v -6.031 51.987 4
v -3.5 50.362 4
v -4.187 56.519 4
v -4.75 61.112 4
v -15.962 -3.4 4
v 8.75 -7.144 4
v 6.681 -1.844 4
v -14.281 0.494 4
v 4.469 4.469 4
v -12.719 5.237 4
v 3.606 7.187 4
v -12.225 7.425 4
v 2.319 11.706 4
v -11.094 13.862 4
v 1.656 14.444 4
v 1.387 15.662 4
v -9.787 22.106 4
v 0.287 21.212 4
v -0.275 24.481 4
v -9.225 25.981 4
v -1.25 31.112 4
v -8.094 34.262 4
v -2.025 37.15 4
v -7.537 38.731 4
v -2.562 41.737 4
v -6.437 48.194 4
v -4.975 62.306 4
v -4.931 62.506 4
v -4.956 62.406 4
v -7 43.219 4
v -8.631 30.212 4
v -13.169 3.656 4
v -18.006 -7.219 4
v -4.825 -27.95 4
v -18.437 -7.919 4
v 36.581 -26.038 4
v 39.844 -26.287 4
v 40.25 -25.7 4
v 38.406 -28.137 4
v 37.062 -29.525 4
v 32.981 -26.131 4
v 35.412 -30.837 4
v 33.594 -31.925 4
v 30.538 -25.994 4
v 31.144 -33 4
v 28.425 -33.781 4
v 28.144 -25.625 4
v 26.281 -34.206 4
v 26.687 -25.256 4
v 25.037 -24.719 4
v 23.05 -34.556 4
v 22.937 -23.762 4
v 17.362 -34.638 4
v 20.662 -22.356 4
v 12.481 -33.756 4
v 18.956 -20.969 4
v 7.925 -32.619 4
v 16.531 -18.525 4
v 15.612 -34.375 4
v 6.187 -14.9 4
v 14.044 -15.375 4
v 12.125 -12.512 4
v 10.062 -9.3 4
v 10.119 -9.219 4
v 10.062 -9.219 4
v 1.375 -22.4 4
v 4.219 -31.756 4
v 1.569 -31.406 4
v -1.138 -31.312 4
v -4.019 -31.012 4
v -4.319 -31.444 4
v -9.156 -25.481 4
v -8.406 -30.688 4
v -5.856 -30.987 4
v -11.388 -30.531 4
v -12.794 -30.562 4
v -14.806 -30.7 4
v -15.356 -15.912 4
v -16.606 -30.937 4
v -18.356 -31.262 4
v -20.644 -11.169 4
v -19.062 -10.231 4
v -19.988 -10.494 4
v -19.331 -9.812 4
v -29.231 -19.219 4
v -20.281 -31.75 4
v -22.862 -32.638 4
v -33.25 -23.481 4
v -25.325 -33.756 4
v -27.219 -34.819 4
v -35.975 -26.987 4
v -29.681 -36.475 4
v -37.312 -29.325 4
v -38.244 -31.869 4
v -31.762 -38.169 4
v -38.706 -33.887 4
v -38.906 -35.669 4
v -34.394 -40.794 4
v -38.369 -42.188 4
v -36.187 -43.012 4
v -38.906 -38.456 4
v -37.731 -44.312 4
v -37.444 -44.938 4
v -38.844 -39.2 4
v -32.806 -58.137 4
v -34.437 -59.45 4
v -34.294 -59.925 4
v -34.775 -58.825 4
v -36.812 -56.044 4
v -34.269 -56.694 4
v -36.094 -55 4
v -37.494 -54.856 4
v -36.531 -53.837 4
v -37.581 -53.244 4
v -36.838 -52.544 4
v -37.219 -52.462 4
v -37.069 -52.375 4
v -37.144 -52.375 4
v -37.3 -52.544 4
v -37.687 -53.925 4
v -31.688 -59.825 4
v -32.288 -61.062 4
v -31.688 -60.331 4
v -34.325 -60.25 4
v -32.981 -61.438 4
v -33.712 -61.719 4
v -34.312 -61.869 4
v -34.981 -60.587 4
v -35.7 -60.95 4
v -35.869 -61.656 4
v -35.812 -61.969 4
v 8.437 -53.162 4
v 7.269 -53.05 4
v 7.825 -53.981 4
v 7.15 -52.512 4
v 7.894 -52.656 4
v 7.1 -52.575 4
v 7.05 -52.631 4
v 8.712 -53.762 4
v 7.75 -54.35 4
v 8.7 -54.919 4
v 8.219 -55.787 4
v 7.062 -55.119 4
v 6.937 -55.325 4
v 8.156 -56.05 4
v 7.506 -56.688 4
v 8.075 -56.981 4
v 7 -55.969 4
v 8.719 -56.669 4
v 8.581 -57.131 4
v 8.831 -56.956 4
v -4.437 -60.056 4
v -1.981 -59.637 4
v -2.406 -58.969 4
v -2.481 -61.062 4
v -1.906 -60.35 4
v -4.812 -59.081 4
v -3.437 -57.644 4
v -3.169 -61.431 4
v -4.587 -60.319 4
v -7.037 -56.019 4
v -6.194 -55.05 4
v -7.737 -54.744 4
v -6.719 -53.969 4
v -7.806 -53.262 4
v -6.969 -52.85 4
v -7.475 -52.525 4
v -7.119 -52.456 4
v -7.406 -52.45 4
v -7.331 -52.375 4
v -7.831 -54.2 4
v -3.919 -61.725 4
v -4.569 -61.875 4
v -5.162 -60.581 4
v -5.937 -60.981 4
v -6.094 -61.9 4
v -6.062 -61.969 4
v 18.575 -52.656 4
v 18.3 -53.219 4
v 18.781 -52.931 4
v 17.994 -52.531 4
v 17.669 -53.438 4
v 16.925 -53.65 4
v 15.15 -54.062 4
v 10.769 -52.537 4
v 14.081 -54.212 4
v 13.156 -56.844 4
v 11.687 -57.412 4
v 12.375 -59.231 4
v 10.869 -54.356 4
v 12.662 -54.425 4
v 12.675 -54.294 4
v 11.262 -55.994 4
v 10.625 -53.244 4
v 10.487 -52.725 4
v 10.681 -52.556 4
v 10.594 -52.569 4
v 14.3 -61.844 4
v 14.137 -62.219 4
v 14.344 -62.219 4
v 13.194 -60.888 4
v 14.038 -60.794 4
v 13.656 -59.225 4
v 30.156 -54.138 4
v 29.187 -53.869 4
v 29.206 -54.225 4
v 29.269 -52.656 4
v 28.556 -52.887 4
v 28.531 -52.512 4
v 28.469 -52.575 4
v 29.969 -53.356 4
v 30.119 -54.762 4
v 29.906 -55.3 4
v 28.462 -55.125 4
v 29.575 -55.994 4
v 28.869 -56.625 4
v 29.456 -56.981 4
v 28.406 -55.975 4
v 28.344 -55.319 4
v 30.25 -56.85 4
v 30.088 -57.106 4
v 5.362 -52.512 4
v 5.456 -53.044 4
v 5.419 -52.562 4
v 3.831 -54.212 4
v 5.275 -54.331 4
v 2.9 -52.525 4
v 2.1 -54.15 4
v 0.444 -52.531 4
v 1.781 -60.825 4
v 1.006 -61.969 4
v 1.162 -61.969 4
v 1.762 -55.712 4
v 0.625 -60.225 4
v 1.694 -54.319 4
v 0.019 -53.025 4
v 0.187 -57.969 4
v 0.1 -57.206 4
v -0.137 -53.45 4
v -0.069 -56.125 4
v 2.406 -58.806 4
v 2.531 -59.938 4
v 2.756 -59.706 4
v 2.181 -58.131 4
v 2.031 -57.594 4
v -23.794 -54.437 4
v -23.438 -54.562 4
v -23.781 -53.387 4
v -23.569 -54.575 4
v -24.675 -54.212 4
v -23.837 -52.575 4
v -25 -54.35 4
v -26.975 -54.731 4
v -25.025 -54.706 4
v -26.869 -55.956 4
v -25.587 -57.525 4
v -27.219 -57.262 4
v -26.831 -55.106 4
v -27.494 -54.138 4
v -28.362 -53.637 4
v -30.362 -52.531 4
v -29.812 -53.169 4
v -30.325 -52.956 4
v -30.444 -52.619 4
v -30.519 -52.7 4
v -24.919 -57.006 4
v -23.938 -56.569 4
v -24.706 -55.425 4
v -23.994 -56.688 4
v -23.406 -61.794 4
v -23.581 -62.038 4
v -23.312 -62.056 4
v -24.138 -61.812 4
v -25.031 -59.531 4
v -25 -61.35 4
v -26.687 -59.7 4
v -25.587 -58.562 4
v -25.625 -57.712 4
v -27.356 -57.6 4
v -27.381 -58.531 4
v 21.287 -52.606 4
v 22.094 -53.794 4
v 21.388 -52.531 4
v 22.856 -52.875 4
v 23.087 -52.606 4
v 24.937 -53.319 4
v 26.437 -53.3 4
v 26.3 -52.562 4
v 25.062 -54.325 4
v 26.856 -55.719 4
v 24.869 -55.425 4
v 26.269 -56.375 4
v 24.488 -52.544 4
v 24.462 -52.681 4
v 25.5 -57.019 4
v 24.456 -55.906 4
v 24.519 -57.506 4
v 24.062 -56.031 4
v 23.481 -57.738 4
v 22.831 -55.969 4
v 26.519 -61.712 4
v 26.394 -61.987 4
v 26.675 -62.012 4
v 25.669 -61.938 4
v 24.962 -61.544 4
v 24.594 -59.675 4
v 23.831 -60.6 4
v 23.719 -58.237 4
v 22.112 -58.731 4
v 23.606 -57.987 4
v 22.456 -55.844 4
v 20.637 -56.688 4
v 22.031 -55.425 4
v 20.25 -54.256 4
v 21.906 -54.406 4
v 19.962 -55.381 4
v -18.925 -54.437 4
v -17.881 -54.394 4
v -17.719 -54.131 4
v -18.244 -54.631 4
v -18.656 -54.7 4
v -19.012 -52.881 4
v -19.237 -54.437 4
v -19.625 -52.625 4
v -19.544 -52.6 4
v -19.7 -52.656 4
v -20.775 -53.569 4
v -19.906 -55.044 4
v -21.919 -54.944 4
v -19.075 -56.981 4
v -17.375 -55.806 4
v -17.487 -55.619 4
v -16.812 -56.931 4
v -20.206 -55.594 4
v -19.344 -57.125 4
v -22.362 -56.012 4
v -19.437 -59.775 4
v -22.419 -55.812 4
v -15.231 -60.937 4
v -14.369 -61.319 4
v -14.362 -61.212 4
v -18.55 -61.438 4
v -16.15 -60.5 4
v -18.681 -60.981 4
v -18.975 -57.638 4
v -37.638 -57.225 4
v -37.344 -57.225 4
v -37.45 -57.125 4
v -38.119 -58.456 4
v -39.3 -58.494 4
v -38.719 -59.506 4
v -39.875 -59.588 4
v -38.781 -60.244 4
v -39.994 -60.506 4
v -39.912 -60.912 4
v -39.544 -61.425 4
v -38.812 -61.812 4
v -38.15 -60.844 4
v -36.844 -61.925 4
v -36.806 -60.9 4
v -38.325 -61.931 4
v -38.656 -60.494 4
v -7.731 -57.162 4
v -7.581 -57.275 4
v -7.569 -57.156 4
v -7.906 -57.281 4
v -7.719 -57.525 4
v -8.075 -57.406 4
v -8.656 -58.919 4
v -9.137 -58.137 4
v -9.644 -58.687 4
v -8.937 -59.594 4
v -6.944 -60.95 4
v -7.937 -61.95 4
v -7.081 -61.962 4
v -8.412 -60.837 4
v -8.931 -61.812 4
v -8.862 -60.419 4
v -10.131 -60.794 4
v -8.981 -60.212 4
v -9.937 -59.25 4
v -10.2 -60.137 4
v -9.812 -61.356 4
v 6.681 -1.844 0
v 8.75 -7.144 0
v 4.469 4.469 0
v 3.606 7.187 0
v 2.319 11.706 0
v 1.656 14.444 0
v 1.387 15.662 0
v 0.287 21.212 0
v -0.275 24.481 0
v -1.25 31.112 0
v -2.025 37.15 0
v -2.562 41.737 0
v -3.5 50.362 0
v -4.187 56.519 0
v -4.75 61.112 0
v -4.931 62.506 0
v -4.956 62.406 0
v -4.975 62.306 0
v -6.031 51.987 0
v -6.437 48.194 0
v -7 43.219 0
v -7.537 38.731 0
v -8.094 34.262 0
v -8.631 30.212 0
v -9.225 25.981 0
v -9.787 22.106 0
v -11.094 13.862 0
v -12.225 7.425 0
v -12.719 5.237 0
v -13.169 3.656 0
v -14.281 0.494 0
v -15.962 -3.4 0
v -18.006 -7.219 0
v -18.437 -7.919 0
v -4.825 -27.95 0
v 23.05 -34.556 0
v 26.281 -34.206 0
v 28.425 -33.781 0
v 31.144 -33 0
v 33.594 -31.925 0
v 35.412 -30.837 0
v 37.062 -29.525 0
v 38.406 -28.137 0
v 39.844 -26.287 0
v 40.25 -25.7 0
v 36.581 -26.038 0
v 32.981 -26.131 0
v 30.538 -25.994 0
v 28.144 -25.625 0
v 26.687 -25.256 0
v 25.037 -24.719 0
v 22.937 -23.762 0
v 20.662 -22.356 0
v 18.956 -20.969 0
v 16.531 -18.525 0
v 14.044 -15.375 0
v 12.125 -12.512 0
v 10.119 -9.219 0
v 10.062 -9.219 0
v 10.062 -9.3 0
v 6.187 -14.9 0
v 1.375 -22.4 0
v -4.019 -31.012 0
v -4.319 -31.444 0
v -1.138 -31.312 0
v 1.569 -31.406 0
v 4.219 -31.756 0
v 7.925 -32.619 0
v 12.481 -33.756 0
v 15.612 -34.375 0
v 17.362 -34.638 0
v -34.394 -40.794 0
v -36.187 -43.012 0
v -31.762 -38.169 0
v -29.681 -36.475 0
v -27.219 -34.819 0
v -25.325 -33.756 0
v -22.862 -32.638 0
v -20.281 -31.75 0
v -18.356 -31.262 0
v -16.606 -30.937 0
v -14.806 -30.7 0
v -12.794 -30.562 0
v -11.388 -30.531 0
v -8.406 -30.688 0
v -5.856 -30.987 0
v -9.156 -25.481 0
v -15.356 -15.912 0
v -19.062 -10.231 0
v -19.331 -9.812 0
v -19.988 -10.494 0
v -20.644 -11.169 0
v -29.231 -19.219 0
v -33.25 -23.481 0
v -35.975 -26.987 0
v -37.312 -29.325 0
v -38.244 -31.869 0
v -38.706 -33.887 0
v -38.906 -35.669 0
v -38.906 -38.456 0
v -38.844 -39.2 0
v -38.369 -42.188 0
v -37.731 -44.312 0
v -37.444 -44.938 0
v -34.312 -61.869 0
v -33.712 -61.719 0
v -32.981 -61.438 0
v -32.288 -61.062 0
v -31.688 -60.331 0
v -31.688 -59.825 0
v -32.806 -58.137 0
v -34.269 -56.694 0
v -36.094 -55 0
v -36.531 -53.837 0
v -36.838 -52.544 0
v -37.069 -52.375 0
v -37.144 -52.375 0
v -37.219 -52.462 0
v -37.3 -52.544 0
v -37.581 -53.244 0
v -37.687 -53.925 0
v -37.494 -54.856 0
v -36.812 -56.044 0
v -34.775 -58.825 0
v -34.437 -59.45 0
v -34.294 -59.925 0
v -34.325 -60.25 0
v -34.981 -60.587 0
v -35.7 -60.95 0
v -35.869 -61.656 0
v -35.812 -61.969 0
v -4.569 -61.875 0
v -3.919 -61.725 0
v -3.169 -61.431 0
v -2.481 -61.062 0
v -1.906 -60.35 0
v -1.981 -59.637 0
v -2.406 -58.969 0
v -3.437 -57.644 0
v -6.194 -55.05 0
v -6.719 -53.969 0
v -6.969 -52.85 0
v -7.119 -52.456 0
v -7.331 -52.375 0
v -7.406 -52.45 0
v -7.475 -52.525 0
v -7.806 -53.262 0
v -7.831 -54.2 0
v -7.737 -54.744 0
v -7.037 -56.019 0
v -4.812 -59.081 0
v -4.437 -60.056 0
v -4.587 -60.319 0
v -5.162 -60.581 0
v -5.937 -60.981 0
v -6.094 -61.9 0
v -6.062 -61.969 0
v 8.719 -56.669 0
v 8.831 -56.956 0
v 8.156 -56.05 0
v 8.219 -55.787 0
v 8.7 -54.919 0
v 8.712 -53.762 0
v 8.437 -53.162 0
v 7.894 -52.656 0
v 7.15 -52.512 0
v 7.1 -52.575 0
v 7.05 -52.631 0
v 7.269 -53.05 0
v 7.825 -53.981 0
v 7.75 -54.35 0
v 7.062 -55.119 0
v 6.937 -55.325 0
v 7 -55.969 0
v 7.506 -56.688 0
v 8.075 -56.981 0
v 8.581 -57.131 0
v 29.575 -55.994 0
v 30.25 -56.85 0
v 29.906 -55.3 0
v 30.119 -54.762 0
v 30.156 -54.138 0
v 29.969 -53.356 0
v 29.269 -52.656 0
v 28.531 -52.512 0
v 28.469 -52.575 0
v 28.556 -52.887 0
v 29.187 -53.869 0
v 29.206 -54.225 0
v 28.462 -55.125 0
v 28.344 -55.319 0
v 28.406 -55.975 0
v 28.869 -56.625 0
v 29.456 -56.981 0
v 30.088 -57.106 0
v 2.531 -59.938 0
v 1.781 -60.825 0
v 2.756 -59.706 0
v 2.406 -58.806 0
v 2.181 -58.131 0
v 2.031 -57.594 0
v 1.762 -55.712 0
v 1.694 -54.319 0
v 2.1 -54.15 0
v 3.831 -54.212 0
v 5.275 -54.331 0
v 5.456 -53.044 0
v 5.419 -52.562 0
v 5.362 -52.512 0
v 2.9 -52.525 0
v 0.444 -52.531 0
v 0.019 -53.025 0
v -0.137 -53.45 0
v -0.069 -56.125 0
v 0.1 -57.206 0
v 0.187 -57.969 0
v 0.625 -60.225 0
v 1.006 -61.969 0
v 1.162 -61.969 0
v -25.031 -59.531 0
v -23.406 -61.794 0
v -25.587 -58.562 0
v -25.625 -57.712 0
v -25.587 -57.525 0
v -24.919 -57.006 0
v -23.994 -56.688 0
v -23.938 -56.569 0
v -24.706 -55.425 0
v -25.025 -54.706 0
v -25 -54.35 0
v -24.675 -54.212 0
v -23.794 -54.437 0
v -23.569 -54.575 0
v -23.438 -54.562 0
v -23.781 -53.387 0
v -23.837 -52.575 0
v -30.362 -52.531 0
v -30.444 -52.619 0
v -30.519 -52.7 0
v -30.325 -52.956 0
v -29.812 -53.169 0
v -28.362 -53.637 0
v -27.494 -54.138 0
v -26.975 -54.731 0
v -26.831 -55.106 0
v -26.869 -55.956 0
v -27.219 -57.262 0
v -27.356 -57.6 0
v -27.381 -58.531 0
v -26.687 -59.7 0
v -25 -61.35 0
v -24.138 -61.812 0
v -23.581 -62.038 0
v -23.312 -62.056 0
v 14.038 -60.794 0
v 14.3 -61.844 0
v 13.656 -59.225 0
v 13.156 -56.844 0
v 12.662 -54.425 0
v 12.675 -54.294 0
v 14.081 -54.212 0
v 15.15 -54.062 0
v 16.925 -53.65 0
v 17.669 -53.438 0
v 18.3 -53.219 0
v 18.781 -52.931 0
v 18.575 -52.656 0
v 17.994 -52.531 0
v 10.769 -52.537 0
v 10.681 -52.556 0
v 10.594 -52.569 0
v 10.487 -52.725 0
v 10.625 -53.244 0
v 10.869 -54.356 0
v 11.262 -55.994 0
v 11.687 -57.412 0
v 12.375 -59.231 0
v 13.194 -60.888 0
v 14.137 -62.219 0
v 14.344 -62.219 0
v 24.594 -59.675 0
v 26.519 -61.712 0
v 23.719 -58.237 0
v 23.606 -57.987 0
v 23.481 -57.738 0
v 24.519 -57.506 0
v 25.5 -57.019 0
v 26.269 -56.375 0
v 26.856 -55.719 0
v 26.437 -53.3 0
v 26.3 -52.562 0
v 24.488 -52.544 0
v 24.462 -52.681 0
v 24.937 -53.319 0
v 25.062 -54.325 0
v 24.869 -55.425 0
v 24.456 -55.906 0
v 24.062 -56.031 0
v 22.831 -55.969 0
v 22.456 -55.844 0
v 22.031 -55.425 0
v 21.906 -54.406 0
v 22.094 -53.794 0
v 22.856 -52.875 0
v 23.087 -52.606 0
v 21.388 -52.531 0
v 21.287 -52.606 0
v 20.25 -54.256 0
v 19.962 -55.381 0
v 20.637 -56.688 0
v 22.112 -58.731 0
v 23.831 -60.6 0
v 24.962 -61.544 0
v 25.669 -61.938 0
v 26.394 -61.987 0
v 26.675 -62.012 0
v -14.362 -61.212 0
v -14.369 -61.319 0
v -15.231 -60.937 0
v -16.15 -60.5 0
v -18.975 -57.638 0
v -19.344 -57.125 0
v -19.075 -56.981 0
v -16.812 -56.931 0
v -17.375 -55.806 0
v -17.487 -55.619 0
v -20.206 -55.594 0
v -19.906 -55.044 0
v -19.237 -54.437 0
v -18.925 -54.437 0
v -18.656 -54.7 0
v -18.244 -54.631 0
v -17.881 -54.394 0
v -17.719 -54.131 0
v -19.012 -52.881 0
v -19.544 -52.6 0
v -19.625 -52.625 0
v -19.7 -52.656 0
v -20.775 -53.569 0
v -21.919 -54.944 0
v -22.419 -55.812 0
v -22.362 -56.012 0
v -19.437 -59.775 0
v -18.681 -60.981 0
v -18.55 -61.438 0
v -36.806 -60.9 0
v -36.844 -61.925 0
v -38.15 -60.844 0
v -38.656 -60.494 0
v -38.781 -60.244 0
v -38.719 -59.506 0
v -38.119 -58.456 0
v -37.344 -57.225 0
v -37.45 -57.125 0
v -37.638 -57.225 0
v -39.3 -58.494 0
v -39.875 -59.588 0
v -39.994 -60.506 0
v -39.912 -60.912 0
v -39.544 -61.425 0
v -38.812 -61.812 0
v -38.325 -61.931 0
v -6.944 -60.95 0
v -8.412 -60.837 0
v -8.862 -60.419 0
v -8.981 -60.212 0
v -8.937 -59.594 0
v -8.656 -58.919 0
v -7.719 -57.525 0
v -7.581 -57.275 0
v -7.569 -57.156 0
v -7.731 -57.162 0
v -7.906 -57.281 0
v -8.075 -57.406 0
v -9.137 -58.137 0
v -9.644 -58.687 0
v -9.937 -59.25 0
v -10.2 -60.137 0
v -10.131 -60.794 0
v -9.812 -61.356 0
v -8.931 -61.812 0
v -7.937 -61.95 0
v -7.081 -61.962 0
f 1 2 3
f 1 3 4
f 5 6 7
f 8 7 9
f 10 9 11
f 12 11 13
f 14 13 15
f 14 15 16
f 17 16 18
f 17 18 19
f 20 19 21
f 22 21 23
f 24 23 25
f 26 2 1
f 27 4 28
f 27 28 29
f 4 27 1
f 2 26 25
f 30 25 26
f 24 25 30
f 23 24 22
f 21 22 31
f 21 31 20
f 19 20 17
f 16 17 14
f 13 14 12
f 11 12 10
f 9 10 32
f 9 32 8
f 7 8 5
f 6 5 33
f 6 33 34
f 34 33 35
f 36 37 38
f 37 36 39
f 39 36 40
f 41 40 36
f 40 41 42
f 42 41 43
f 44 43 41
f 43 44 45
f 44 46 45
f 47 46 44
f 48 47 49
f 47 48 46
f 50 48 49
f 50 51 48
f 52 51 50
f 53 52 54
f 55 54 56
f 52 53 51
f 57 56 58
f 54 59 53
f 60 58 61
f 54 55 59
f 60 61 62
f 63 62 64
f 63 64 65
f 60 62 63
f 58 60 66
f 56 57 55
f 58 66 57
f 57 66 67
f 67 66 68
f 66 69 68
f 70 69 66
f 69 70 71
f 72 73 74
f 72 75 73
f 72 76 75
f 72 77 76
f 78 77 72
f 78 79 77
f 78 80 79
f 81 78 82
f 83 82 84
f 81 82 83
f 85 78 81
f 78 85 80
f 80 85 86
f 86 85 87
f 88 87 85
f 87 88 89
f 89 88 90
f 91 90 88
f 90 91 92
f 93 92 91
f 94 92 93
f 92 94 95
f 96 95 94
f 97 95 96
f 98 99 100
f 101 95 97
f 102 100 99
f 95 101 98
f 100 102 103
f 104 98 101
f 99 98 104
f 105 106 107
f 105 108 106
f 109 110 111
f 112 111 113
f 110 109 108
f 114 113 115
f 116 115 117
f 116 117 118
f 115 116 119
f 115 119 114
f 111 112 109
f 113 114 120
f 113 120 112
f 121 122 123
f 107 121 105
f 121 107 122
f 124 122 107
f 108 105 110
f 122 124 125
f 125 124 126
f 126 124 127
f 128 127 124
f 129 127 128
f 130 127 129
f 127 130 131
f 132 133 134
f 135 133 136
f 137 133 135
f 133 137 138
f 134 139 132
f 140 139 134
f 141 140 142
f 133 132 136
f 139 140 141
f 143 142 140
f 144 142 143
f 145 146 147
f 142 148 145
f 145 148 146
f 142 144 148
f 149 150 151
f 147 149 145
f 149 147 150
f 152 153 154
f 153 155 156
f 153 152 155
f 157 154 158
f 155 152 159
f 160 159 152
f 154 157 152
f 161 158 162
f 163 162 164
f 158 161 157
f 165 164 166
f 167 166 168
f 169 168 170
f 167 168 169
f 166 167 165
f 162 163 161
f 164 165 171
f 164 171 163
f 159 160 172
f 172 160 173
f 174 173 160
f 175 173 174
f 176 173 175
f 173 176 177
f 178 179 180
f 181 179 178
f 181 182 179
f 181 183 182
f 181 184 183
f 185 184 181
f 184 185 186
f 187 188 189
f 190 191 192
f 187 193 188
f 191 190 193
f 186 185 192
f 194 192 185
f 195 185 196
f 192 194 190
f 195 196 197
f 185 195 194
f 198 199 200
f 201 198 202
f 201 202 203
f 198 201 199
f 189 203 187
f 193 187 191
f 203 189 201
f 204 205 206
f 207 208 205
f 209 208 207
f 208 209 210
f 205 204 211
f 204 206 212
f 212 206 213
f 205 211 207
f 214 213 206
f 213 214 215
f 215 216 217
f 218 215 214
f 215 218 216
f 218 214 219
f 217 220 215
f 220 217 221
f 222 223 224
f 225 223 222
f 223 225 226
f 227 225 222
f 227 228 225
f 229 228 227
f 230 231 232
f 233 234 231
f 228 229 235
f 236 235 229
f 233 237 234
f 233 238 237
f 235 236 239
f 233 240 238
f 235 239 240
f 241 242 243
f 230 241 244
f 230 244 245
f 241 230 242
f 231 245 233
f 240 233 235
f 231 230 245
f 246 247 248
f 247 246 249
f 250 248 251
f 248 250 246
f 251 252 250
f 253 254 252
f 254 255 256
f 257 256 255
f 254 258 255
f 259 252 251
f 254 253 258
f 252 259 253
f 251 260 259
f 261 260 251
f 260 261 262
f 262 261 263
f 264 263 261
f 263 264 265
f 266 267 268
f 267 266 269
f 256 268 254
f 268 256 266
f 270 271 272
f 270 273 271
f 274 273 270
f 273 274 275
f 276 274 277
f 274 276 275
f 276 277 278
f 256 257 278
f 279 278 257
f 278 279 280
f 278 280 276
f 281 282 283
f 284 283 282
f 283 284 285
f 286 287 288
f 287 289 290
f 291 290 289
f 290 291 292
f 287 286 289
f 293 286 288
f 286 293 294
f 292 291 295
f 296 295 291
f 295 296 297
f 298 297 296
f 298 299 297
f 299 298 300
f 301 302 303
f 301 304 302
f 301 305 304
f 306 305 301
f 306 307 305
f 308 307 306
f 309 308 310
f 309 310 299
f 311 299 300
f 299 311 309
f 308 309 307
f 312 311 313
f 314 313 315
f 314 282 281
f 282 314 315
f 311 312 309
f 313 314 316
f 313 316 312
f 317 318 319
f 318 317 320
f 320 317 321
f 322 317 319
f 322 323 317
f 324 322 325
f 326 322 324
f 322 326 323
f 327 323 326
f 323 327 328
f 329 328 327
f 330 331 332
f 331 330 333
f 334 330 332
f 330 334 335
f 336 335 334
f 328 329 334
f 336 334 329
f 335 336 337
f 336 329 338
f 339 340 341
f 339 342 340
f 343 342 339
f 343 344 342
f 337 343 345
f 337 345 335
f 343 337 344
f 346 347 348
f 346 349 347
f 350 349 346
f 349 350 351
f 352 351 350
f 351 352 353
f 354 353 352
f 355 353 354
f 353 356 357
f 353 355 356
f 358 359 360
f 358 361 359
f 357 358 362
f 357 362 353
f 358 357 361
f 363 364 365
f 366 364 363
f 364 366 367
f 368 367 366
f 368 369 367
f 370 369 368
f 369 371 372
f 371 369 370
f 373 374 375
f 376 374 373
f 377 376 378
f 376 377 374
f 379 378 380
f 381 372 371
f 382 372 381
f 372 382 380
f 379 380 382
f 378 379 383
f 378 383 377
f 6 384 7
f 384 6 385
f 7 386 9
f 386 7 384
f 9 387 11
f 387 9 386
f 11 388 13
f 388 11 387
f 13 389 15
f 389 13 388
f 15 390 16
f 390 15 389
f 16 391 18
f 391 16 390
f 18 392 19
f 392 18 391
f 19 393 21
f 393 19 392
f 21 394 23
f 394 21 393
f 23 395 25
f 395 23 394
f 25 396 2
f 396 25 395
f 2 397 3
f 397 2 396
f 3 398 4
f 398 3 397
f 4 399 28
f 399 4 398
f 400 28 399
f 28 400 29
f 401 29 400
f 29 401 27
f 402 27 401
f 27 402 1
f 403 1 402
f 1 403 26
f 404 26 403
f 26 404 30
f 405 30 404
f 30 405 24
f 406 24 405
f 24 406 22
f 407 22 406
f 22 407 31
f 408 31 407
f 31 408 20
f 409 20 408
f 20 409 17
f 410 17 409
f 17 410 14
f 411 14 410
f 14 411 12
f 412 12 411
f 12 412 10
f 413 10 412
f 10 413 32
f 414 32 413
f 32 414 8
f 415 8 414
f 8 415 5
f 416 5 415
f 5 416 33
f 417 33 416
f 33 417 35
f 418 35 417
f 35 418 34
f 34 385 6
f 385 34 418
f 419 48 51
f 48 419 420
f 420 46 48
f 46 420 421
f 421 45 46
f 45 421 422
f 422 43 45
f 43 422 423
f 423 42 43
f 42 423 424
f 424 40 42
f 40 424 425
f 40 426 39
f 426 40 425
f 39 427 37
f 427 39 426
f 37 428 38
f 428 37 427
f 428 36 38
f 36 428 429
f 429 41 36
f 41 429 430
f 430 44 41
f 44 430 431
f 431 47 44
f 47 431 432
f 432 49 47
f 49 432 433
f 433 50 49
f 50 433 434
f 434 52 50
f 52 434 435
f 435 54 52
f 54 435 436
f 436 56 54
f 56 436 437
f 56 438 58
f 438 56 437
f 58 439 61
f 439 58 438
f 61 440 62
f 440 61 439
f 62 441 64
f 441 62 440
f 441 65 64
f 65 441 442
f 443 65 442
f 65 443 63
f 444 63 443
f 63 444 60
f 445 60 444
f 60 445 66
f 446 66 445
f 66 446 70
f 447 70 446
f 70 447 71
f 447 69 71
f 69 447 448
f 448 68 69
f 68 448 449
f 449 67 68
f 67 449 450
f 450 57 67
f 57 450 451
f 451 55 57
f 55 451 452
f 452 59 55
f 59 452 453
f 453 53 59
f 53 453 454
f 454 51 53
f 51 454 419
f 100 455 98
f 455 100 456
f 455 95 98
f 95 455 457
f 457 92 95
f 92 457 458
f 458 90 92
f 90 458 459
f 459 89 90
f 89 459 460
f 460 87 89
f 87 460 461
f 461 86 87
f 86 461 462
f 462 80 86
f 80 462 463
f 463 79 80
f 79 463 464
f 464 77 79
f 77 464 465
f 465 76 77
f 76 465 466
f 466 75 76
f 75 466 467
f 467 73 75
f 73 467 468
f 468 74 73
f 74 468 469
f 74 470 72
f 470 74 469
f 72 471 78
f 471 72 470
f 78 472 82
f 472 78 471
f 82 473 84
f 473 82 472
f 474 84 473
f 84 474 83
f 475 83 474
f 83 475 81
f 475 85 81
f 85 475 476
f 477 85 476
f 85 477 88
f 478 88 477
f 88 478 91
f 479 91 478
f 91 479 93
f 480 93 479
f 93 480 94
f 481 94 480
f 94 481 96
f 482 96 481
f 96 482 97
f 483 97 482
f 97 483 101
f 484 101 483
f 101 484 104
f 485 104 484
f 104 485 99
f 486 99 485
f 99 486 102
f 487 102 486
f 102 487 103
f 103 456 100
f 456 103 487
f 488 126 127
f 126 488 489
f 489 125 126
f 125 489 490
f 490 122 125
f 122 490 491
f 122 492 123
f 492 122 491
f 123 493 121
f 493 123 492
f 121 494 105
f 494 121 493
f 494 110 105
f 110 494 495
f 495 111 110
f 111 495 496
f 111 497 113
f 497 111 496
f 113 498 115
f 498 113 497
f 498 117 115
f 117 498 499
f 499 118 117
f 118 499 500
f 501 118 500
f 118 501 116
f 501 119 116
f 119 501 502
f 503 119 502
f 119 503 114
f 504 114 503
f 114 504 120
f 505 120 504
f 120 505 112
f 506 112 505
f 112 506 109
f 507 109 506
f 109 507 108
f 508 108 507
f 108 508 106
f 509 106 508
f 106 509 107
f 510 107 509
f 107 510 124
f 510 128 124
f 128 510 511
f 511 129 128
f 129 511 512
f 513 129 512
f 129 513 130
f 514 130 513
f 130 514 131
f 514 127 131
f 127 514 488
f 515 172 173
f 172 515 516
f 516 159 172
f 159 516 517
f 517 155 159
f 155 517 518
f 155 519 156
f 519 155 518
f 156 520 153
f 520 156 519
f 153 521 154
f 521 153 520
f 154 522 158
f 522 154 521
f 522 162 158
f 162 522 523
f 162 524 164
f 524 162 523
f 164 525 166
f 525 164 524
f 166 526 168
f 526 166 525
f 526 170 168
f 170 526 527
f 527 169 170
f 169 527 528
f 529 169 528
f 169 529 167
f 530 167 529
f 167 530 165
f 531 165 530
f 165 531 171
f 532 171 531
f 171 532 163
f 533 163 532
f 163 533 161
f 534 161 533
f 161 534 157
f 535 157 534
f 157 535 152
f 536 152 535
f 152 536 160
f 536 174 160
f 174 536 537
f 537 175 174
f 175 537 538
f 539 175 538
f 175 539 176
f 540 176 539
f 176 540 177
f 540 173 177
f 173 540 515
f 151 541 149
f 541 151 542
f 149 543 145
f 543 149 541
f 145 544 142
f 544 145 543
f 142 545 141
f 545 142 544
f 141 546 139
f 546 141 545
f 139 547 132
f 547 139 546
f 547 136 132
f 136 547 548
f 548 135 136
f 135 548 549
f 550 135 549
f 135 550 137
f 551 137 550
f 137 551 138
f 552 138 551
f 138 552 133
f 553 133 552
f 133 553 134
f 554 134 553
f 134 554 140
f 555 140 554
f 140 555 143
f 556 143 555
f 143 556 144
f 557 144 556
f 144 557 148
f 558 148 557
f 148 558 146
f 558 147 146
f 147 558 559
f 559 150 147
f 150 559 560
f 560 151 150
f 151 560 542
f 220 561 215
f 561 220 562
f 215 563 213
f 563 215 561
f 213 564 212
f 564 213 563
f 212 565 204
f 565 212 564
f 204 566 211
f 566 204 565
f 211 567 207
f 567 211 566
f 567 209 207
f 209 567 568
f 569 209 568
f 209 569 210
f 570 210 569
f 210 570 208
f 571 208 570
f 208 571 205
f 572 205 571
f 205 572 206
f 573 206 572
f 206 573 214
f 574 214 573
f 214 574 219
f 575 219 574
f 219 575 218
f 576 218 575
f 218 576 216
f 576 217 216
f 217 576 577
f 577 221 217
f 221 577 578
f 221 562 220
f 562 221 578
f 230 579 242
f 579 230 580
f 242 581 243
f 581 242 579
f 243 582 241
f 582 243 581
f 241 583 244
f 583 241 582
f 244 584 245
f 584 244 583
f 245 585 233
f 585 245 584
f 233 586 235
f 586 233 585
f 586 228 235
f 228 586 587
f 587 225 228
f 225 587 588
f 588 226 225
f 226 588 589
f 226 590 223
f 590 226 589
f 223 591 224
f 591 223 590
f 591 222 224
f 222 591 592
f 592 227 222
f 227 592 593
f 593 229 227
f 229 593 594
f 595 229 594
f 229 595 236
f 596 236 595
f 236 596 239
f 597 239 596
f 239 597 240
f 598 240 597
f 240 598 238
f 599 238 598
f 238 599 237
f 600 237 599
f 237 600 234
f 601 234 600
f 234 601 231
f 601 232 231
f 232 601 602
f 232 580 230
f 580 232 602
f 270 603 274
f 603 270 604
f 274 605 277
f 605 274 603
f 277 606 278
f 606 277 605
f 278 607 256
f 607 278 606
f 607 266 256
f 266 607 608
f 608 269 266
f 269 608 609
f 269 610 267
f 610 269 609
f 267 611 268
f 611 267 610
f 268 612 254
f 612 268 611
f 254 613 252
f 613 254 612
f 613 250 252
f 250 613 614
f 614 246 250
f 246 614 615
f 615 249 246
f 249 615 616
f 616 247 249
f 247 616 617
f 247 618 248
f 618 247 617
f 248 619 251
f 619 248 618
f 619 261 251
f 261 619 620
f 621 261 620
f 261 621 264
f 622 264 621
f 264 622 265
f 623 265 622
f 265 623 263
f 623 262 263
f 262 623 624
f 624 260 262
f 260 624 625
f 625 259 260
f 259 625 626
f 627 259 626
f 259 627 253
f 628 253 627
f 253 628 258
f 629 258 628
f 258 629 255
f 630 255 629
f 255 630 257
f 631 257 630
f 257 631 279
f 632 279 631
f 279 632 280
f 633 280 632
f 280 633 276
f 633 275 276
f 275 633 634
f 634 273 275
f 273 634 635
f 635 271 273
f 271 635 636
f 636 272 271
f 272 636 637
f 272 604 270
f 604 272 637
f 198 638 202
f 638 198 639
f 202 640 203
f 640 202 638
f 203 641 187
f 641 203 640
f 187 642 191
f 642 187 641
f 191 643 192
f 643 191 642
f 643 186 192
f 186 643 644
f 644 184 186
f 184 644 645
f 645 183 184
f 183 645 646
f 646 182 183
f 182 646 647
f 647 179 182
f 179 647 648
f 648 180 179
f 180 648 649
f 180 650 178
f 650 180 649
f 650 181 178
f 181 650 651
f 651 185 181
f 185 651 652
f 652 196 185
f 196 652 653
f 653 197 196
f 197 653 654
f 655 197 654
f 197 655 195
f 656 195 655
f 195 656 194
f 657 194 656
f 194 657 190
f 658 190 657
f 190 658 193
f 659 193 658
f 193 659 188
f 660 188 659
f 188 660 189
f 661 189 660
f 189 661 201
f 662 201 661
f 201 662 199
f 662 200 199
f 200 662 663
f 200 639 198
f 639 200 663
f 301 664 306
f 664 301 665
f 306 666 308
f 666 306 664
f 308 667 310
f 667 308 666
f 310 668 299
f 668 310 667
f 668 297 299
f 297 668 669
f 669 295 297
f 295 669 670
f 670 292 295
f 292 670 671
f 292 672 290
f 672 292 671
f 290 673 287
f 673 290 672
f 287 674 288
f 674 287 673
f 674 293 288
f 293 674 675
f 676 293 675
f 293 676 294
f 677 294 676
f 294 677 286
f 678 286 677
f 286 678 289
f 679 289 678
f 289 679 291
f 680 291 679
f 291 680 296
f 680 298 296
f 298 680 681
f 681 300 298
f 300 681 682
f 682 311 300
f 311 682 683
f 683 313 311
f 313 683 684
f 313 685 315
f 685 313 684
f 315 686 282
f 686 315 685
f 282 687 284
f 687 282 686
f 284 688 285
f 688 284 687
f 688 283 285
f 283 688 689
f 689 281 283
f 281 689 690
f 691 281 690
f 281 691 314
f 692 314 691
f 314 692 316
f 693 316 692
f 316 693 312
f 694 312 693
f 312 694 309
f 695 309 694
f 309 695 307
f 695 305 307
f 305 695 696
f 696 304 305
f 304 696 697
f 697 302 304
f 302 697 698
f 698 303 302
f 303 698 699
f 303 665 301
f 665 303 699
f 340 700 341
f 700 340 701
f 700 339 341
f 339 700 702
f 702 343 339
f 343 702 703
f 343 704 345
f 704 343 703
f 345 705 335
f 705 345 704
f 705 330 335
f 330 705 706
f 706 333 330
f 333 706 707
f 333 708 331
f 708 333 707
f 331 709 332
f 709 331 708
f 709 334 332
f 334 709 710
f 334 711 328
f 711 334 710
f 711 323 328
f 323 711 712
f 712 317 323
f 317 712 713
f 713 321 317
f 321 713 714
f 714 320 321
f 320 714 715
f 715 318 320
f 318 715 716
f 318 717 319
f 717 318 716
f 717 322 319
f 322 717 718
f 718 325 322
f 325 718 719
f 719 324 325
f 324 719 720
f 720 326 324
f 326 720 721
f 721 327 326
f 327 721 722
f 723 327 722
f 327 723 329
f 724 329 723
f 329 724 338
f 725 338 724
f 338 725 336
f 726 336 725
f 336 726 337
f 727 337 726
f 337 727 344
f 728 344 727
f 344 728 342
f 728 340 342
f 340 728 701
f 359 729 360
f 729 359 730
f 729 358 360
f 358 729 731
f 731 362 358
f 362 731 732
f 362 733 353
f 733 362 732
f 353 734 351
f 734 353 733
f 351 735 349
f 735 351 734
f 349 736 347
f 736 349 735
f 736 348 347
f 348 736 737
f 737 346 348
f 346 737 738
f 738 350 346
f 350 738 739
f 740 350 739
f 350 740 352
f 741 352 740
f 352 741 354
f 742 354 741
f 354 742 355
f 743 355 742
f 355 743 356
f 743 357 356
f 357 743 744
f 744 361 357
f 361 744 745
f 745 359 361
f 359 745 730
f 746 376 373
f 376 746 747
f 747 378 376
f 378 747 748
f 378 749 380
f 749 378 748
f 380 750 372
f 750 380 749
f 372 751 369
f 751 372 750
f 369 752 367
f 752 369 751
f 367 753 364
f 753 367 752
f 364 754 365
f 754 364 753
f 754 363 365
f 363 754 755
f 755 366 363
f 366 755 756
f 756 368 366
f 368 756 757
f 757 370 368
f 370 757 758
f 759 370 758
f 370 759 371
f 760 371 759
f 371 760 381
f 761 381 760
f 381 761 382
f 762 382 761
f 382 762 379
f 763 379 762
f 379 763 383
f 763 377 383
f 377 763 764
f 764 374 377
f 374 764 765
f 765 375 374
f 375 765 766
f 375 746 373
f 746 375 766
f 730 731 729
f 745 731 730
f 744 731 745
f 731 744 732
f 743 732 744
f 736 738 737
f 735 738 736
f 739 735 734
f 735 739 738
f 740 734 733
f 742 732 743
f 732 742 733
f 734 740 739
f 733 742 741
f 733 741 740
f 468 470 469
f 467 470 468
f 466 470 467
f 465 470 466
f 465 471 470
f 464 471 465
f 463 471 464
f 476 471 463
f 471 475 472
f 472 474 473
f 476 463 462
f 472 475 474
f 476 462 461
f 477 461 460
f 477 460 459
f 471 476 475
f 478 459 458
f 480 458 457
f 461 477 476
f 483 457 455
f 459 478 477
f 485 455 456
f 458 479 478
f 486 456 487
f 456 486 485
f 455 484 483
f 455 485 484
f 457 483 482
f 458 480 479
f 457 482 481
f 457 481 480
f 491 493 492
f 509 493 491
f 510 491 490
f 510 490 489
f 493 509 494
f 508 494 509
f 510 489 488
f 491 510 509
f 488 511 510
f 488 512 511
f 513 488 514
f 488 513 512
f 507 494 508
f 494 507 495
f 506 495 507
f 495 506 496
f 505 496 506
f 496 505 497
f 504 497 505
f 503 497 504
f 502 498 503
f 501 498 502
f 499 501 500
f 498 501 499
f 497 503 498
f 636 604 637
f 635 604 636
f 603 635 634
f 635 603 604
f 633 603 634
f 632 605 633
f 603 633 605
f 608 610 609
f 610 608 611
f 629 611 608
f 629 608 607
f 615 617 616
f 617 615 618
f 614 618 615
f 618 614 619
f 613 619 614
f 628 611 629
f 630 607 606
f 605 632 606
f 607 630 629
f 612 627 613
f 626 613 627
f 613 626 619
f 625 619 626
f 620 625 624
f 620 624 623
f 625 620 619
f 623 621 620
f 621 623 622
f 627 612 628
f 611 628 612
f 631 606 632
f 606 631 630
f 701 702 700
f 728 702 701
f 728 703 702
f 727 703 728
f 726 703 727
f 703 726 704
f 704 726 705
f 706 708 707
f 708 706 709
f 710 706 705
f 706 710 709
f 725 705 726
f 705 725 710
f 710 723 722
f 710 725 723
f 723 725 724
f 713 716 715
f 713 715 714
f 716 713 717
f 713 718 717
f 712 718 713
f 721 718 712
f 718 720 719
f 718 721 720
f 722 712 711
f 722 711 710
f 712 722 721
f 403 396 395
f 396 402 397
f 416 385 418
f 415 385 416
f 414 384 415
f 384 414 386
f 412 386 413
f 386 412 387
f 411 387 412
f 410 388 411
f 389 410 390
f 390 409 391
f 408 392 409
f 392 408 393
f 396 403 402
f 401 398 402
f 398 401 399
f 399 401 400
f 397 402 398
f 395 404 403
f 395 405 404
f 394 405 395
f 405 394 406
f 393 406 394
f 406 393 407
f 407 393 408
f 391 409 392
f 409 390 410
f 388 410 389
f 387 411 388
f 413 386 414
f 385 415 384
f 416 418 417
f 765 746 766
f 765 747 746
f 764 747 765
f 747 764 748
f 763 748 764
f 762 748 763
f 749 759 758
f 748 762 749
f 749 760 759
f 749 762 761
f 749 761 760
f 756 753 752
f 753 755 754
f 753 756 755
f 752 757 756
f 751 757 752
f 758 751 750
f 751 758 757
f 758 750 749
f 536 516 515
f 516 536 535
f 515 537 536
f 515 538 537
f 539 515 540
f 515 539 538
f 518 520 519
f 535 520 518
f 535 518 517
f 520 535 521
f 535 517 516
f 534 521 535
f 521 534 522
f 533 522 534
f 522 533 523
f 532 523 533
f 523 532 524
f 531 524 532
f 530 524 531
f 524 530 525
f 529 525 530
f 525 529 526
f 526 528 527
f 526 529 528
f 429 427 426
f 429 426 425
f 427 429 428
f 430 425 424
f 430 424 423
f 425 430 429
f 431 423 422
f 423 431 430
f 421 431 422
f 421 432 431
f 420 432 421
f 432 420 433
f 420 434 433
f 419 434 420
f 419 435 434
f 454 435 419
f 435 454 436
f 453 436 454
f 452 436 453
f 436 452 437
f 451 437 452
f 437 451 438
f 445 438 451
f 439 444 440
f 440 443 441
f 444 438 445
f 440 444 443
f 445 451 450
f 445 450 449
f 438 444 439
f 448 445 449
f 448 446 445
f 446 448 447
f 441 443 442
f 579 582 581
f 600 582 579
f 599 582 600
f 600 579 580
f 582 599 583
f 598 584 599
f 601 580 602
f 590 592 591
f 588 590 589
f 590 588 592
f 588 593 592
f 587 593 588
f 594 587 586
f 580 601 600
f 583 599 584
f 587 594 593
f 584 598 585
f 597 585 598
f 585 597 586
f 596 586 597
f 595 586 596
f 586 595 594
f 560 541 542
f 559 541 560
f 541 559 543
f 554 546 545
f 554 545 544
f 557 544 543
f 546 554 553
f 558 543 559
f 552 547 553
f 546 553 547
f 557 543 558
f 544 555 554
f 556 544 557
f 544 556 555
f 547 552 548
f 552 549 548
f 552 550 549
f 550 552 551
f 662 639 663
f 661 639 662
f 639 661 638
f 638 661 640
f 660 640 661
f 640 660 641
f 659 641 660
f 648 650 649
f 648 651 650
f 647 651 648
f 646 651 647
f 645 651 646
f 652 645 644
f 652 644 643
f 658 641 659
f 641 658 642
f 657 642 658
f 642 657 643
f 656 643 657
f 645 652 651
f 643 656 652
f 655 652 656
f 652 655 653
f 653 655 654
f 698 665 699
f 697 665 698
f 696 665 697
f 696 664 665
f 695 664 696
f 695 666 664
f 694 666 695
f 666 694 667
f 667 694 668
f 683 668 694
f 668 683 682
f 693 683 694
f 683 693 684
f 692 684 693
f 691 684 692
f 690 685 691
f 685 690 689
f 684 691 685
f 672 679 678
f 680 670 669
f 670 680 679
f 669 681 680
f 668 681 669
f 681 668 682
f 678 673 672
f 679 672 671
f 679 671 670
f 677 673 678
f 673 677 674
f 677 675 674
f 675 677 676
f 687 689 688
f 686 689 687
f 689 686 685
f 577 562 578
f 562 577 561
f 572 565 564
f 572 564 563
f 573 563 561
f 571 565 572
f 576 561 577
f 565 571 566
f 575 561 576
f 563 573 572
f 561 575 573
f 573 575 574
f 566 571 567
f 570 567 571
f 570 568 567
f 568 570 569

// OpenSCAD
module c1b63d86cc421185fdcc68e1ba23a0e4_1()
{
 /* Generated by trace2scad version 20150415
    http://aggregate.org/MAKE/TRACE2SCAD/
    Optimized model has 387/4796 original points
 */
 color([0.48, 0.48, 0.48])
 assign(minx=0) /* polygon minx=39 */
 assign(miny=0) /* polygon miny=45 */
 assign(maxx=12880) /* polygon maxx=12880 */
 assign(maxy=20000) /* polygon maxy=20001 */
 assign(dx=maxx-minx)
 assign(dy=maxy-miny)
 assign(maxd=((dx>dy)?dx:dy))
 scale([1/maxd, 1/maxd, 1])
 translate([-minx-dx/2, -miny-dy/2, 0])
 linear_extrude(height=1, convexity=387)
 union() {
  union() {
   polygon([[5647,19985],[5644,19969],[5475,18318],[5410,17711],[5320,16915],[5234,16197],[5145,15482],[5059,14834],[4964,14157],[4874,13537],[4665,12218],[4484,11188],[4405,10838],[4333,10585],[4155,10079],[3886,9456],[3559,8845],[3490,8733],[5668,5528],[7840,8857],[7509,9705],[7155,10715],[7017,11150],[6811,11873],[6705,12311],[6662,12506],[6486,13394],[6396,13917],[6240,14978],[6116,15944],[6030,16678],[5880,18058],[5770,19043],[5680,19778],[5651,20001]], convexity=6);
   polygon([[8050,8518],[8050,8512],[7430,7616],[6660,6416],[5797,5038],[5749,4969],[6258,4990],[6691,4975],[7115,4919],[7708,4781],[8437,4599],[8938,4500],[9218,4458],[10128,4471],[10645,4527],[10988,4595],[11423,4720],[11815,4892],[12106,5066],[12370,5276],[12585,5498],[12815,5794],[12880,5888],[12293,5834],[11717,5819],[11326,5841],[10943,5900],[10710,5959],[10446,6045],[10110,6198],[9746,6423],[9473,6645],[9085,7036],[8687,7540],[8380,7998],[8059,8525],[8050,8525]], convexity=9);
   polygon([[3242,8321],[3137,8213],[1763,6925],[1120,6243],[684,5682],[470,5308],[321,4901],[247,4578],[215,4293],[215,3847],[225,3728],[301,3250],[403,2910],[449,2810],[650,3118],[937,3473],[1358,3893],[1691,4164],[2085,4429],[2388,4599],[2782,4778],[3195,4920],[3503,4998],[3783,5050],[4071,5088],[4393,5110],[4618,5115],[5095,5090],[5503,5042],[4975,5923],[3983,7454],[3390,8363],[3347,8430]], convexity=7);
   polygon([[485,1606],[472,1593],[427,1481],[410,1372],[441,1223],[550,1033],[876,588],[930,488],[953,412],[948,360],[843,306],[728,248],[701,135],[710,85],[950,101],[1046,125],[1163,170],[1274,230],[1370,347],[1370,428],[1191,698],[957,929],[665,1200],[595,1386],[546,1593],[509,1620],[497,1620]], convexity=8);
   polygon([[5255,1608],[5244,1596],[5191,1478],[5187,1328],[5202,1241],[5314,1037],[5670,547],[5730,391],[5706,349],[5614,307],[5490,243],[5465,96],[5470,85],[5709,100],[5813,124],[5933,171],[6043,230],[6135,344],[6123,458],[6055,565],[5890,777],[5449,1192],[5365,1365],[5325,1544],[5301,1607],[5267,1620]], convexity=8);
   polygon([[6904,1596],[6511,1595],[6443,1516],[6418,1448],[6429,1020],[6456,847],[6470,725],[6540,364],[6601,85],[6626,85],[6725,268],[6845,410],[6881,447],[6825,591],[6789,699],[6765,785],[6722,1086],[6711,1309],[6776,1336],[7053,1326],[7284,1307],[7313,1513],[7307,1590],[7298,1598]], convexity=10);
   polygon([[7576,1588],[7568,1579],[7603,1512],[7692,1363],[7680,1304],[7570,1181],[7550,1148],[7560,1045],[7641,930],[7732,883],[7813,859],[7853,887],[7835,933],[7745,1032],[7755,1074],[7832,1213],[7834,1398],[7790,1494],[7703,1575],[7584,1598]], convexity=10);
   polygon([[11000,1593],[10995,1588],[11009,1538],[11110,1381],[11113,1324],[10994,1180],[10975,1149],[10985,1044],[11059,940],[11153,883],[11254,863],[11280,904],[11172,1041],[11225,1152],[11259,1238],[11265,1338],[11235,1463],[11123,1575],[11005,1598]], convexity=10);
   polygon([[1569,1581],[1557,1568],[1588,1527],[1670,1493],[1902,1418],[2041,1338],[2124,1243],[2147,1183],[2141,1047],[2085,838],[2063,784],[2059,635],[2170,448],[2440,184],[2578,110],[2667,74],[2710,71],[2695,113],[2435,475],[2346,630],[2340,766],[2346,796],[2453,879],[2601,930],[2610,949],[2487,1132],[2436,1247],[2440,1304],[2492,1326],[2633,1290],[2669,1268],[2690,1270],[2635,1458],[2626,1588],[1582,1595]], convexity=13);
   polygon([[8149,1591],[8135,1589],[8118,1564],[8140,1481],[8179,1303],[8242,1041],[8310,814],[8420,523],[8551,258],[8702,45],[8735,45],[8728,105],[8686,273],[8625,524],[8545,905],[8466,1292],[8468,1313],[8693,1326],[8864,1350],[9148,1416],[9267,1450],[9368,1485],[9445,1531],[9412,1575],[9319,1595],[8163,1594]], convexity=9);
   polygon([[9854,1589],[9846,1583],[9680,1319],[9634,1139],[9742,930],[9978,603],[10253,304],[10434,153],[10547,90],[10663,82],[10708,78],[10683,126],[10375,452],[10235,682],[10217,722],[10197,762],[10363,799],[10520,877],[10643,980],[10737,1085],[10670,1472],[10648,1590],[10358,1593],[10354,1571],[10430,1469],[10450,1308],[10419,1132],[10353,1055],[10290,1035],[10093,1045],[10033,1065],[9965,1132],[9945,1295],[9975,1393],[10097,1540],[10134,1583],[9862,1595]], convexity=13);
   polygon([[3300,1580],[3288,1575],[3116,1429],[2933,1209],[2853,1070],[2862,1038],[3330,436],[3451,243],[3472,170],[4141,189],[4142,206],[4003,250],[3856,320],[3404,778],[3345,860],[3388,883],[3750,891],[3660,1071],[3642,1101],[3207,1105],[3255,1193],[3362,1290],[3412,1290],[3455,1248],[3521,1259],[3579,1297],[3605,1339],[3398,1539],[3313,1584]], convexity=12);
   polygon([[433,852],[418,844],[152,641],[60,466],[41,319],[54,254],[113,172],[230,110],[308,91],[545,92],[551,256],[336,265],[255,321],[235,361],[245,479],[341,647],[465,844],[448,860]], convexity=8);
   polygon([[5175,835],[5148,815],[4978,698],[4897,610],[4850,520],[4808,378],[4819,273],[4870,183],[5011,110],[5170,88],[5307,86],[5329,248],[5094,266],[5022,333],[5003,366],[5010,465],[5055,573],[5205,796],[5227,836],[5229,855],[5203,854]], convexity=8);
  }
 }
}

module c1b63d86cc421185fdcc68e1ba23a0e4()
{
 /* all layers combined, scaled to within a 1mm cube */
 scale([1, 1, 1/1])
 difference() {
  union() {
   scale([1,1,2]) translate([0,0,-0.5]) c1b63d86cc421185fdcc68e1ba23a0e4_1();
  }
  translate([0,0,-2]) cube([2,2,4],center=true);
 }
}

scale([125, 125, 4]) {
	c1b63d86cc421185fdcc68e1ba23a0e4();
}
